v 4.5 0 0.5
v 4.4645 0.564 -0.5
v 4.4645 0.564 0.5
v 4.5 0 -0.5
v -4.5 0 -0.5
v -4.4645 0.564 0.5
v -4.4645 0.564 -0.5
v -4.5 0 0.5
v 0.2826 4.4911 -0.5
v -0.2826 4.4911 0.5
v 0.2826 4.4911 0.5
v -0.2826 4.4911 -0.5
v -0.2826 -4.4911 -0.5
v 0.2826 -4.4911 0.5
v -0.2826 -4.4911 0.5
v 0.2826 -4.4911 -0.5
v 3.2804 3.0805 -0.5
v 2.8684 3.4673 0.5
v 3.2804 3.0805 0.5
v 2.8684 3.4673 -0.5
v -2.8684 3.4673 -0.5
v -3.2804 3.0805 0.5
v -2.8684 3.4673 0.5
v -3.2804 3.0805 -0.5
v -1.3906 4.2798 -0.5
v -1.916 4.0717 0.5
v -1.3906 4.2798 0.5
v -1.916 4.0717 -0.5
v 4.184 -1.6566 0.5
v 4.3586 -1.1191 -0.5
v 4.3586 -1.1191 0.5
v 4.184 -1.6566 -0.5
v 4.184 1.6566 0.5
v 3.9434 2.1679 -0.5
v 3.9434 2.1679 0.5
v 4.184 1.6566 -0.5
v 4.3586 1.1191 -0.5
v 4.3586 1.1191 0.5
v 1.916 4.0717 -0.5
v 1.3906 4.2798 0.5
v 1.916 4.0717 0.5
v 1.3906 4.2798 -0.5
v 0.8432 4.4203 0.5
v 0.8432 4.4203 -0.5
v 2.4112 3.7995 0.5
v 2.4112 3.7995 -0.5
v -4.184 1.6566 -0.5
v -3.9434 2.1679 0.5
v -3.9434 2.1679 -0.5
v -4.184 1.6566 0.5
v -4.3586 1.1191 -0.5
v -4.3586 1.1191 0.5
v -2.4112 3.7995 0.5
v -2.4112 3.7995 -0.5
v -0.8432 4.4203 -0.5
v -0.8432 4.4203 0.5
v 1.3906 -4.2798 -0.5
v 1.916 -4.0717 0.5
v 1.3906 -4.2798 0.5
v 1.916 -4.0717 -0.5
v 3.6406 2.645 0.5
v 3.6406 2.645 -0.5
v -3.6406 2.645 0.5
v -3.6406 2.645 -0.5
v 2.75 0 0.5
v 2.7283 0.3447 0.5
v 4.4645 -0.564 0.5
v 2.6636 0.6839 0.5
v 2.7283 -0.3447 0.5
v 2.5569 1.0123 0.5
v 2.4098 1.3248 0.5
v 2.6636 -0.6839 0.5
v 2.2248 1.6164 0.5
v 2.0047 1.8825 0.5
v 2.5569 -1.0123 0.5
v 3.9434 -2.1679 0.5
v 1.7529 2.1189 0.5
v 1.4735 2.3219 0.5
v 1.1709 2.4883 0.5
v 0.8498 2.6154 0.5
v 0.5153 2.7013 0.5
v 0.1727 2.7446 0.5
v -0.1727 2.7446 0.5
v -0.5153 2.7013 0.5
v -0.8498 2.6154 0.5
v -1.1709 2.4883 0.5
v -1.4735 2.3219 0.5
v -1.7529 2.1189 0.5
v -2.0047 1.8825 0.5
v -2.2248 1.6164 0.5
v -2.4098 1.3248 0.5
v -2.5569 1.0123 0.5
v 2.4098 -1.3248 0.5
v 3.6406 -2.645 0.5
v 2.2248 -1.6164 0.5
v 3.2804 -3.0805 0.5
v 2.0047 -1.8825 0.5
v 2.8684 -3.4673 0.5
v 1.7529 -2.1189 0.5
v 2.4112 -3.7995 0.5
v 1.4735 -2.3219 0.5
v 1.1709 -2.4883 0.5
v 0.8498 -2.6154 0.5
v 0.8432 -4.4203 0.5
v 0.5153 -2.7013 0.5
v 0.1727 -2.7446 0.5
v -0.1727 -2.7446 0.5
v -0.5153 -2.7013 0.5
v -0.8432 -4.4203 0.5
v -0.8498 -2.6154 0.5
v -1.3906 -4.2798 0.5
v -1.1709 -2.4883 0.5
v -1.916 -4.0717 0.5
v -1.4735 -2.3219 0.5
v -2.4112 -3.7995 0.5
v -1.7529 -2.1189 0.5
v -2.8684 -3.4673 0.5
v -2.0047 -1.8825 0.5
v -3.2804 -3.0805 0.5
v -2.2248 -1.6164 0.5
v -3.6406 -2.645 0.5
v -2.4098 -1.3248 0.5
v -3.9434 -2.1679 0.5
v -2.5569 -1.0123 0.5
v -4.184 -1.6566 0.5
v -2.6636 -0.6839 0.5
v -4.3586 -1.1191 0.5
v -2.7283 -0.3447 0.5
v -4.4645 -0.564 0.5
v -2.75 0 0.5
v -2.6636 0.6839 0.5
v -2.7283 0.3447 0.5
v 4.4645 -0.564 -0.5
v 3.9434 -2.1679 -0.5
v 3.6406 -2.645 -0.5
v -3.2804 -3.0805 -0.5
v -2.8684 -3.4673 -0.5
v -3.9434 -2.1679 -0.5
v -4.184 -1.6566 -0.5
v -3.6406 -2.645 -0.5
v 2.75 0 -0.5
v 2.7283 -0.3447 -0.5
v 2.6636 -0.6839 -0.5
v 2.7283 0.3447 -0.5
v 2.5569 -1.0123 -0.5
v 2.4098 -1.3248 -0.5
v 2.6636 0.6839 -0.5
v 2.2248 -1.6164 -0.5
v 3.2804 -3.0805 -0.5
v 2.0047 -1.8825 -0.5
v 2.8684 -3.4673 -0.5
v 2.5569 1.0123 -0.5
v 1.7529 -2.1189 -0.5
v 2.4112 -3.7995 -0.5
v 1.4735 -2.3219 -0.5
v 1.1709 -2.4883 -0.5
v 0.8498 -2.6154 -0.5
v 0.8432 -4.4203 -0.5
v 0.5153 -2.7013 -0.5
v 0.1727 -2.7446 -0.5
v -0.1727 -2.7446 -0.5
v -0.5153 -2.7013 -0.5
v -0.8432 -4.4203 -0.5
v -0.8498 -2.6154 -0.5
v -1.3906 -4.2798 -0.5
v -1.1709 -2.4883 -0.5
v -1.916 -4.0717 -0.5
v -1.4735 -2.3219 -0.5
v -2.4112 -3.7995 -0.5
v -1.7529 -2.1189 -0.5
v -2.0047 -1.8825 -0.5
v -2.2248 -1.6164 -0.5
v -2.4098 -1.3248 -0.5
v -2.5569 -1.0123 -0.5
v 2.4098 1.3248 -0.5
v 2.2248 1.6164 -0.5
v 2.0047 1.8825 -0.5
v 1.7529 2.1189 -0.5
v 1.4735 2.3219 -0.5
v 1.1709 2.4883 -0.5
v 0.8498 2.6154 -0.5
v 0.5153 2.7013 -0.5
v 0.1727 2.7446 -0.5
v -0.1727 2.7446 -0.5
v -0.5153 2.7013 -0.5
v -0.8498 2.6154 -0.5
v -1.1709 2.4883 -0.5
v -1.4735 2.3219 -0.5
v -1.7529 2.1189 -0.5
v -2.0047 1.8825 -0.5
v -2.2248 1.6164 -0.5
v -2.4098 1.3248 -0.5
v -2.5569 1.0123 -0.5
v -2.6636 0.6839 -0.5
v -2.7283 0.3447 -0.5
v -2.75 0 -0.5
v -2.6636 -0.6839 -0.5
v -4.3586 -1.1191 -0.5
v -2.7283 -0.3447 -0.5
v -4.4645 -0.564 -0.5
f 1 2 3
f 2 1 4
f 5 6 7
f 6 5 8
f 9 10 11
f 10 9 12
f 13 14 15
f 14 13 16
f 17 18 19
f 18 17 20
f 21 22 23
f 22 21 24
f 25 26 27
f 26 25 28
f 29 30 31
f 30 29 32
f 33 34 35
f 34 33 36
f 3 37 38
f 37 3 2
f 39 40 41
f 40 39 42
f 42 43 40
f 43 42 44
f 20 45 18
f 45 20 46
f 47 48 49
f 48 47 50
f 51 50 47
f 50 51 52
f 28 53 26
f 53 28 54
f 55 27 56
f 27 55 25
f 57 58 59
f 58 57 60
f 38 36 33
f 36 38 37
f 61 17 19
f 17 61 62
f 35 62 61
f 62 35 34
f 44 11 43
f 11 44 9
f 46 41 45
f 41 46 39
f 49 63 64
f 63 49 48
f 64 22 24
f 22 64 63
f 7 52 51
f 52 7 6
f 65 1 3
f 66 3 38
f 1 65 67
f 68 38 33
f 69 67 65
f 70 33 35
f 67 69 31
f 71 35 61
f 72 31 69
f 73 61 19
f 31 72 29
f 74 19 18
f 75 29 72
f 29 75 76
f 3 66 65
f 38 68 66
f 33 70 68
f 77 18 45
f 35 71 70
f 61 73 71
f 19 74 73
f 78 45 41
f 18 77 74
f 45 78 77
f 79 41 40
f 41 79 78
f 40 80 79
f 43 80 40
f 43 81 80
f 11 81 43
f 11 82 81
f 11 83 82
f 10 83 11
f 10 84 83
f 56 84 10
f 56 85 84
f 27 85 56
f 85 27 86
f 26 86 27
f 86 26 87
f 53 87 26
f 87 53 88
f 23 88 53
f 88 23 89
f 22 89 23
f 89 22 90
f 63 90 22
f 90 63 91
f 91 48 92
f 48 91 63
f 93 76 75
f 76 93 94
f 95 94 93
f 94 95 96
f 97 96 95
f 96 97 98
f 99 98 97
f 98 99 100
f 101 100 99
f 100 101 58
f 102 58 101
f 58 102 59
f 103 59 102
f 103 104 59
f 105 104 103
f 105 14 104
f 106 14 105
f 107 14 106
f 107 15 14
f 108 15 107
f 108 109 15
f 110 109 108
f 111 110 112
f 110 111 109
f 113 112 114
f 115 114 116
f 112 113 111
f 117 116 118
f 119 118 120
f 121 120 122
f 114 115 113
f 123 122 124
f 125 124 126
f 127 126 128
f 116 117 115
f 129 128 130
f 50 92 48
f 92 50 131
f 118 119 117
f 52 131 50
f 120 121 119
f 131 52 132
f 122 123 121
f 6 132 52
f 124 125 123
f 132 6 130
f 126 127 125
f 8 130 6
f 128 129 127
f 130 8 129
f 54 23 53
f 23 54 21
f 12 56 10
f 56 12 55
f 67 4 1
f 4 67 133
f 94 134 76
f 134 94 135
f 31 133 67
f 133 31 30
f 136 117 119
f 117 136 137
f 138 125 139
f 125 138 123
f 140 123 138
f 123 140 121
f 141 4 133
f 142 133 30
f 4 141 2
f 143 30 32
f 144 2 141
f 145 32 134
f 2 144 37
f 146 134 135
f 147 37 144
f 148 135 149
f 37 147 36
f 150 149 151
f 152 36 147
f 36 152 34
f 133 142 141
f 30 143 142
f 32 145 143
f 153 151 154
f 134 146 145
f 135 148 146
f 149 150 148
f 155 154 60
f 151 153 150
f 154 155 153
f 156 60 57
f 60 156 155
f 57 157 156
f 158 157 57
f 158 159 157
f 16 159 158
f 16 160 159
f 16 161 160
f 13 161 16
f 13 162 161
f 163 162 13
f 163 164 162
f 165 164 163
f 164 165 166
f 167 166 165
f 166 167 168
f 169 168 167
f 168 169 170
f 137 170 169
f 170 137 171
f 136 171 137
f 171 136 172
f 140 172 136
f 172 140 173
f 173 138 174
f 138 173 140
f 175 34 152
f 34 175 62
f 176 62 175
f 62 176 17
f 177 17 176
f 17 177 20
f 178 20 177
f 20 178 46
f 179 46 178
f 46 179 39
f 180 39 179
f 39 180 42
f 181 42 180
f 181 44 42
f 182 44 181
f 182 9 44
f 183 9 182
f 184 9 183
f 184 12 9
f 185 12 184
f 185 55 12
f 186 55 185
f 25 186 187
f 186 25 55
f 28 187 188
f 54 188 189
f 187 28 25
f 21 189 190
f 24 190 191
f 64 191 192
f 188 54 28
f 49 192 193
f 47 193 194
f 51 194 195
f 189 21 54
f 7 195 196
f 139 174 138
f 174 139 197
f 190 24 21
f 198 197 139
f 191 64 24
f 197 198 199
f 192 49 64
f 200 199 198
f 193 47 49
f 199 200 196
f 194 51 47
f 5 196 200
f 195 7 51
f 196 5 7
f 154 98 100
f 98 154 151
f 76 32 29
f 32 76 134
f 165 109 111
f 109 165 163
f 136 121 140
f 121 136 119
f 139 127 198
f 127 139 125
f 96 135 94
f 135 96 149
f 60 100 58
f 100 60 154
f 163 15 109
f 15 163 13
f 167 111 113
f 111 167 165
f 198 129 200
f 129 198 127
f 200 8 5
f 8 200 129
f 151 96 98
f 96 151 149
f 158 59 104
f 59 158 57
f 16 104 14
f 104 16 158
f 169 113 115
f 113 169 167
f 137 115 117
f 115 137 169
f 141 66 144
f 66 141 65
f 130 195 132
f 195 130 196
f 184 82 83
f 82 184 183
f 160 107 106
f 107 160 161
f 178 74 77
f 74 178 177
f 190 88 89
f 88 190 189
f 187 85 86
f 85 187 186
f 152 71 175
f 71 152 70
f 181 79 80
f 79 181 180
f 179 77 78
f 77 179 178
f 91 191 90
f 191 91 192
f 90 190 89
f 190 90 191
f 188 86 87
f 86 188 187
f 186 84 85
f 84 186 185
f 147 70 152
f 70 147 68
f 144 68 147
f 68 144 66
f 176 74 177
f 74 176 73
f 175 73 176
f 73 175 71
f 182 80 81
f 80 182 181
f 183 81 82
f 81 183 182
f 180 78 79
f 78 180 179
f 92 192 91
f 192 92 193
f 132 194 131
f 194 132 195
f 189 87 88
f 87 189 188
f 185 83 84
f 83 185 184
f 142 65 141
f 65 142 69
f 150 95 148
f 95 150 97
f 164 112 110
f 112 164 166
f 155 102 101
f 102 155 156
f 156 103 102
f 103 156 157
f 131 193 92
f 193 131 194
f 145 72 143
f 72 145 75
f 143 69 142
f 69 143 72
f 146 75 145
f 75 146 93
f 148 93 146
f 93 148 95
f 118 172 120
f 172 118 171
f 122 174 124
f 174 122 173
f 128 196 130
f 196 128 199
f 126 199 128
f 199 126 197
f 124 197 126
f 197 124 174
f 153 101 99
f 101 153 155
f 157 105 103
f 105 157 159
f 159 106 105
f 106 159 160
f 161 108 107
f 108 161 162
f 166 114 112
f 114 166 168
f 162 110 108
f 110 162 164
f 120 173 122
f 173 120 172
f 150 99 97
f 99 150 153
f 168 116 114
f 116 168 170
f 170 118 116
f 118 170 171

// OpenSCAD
$fn = 50;


difference() {
	union() {
		translate(v = [0, 0, -0.5000000000]) {
			cylinder(h = 1, r = 4.5000000000);
		}
	}
	union() {
		translate(v = [0, 0, -100.0000000000]) {
			cylinder(h = 200, r = 2.7500000000);
		}
	}
}
